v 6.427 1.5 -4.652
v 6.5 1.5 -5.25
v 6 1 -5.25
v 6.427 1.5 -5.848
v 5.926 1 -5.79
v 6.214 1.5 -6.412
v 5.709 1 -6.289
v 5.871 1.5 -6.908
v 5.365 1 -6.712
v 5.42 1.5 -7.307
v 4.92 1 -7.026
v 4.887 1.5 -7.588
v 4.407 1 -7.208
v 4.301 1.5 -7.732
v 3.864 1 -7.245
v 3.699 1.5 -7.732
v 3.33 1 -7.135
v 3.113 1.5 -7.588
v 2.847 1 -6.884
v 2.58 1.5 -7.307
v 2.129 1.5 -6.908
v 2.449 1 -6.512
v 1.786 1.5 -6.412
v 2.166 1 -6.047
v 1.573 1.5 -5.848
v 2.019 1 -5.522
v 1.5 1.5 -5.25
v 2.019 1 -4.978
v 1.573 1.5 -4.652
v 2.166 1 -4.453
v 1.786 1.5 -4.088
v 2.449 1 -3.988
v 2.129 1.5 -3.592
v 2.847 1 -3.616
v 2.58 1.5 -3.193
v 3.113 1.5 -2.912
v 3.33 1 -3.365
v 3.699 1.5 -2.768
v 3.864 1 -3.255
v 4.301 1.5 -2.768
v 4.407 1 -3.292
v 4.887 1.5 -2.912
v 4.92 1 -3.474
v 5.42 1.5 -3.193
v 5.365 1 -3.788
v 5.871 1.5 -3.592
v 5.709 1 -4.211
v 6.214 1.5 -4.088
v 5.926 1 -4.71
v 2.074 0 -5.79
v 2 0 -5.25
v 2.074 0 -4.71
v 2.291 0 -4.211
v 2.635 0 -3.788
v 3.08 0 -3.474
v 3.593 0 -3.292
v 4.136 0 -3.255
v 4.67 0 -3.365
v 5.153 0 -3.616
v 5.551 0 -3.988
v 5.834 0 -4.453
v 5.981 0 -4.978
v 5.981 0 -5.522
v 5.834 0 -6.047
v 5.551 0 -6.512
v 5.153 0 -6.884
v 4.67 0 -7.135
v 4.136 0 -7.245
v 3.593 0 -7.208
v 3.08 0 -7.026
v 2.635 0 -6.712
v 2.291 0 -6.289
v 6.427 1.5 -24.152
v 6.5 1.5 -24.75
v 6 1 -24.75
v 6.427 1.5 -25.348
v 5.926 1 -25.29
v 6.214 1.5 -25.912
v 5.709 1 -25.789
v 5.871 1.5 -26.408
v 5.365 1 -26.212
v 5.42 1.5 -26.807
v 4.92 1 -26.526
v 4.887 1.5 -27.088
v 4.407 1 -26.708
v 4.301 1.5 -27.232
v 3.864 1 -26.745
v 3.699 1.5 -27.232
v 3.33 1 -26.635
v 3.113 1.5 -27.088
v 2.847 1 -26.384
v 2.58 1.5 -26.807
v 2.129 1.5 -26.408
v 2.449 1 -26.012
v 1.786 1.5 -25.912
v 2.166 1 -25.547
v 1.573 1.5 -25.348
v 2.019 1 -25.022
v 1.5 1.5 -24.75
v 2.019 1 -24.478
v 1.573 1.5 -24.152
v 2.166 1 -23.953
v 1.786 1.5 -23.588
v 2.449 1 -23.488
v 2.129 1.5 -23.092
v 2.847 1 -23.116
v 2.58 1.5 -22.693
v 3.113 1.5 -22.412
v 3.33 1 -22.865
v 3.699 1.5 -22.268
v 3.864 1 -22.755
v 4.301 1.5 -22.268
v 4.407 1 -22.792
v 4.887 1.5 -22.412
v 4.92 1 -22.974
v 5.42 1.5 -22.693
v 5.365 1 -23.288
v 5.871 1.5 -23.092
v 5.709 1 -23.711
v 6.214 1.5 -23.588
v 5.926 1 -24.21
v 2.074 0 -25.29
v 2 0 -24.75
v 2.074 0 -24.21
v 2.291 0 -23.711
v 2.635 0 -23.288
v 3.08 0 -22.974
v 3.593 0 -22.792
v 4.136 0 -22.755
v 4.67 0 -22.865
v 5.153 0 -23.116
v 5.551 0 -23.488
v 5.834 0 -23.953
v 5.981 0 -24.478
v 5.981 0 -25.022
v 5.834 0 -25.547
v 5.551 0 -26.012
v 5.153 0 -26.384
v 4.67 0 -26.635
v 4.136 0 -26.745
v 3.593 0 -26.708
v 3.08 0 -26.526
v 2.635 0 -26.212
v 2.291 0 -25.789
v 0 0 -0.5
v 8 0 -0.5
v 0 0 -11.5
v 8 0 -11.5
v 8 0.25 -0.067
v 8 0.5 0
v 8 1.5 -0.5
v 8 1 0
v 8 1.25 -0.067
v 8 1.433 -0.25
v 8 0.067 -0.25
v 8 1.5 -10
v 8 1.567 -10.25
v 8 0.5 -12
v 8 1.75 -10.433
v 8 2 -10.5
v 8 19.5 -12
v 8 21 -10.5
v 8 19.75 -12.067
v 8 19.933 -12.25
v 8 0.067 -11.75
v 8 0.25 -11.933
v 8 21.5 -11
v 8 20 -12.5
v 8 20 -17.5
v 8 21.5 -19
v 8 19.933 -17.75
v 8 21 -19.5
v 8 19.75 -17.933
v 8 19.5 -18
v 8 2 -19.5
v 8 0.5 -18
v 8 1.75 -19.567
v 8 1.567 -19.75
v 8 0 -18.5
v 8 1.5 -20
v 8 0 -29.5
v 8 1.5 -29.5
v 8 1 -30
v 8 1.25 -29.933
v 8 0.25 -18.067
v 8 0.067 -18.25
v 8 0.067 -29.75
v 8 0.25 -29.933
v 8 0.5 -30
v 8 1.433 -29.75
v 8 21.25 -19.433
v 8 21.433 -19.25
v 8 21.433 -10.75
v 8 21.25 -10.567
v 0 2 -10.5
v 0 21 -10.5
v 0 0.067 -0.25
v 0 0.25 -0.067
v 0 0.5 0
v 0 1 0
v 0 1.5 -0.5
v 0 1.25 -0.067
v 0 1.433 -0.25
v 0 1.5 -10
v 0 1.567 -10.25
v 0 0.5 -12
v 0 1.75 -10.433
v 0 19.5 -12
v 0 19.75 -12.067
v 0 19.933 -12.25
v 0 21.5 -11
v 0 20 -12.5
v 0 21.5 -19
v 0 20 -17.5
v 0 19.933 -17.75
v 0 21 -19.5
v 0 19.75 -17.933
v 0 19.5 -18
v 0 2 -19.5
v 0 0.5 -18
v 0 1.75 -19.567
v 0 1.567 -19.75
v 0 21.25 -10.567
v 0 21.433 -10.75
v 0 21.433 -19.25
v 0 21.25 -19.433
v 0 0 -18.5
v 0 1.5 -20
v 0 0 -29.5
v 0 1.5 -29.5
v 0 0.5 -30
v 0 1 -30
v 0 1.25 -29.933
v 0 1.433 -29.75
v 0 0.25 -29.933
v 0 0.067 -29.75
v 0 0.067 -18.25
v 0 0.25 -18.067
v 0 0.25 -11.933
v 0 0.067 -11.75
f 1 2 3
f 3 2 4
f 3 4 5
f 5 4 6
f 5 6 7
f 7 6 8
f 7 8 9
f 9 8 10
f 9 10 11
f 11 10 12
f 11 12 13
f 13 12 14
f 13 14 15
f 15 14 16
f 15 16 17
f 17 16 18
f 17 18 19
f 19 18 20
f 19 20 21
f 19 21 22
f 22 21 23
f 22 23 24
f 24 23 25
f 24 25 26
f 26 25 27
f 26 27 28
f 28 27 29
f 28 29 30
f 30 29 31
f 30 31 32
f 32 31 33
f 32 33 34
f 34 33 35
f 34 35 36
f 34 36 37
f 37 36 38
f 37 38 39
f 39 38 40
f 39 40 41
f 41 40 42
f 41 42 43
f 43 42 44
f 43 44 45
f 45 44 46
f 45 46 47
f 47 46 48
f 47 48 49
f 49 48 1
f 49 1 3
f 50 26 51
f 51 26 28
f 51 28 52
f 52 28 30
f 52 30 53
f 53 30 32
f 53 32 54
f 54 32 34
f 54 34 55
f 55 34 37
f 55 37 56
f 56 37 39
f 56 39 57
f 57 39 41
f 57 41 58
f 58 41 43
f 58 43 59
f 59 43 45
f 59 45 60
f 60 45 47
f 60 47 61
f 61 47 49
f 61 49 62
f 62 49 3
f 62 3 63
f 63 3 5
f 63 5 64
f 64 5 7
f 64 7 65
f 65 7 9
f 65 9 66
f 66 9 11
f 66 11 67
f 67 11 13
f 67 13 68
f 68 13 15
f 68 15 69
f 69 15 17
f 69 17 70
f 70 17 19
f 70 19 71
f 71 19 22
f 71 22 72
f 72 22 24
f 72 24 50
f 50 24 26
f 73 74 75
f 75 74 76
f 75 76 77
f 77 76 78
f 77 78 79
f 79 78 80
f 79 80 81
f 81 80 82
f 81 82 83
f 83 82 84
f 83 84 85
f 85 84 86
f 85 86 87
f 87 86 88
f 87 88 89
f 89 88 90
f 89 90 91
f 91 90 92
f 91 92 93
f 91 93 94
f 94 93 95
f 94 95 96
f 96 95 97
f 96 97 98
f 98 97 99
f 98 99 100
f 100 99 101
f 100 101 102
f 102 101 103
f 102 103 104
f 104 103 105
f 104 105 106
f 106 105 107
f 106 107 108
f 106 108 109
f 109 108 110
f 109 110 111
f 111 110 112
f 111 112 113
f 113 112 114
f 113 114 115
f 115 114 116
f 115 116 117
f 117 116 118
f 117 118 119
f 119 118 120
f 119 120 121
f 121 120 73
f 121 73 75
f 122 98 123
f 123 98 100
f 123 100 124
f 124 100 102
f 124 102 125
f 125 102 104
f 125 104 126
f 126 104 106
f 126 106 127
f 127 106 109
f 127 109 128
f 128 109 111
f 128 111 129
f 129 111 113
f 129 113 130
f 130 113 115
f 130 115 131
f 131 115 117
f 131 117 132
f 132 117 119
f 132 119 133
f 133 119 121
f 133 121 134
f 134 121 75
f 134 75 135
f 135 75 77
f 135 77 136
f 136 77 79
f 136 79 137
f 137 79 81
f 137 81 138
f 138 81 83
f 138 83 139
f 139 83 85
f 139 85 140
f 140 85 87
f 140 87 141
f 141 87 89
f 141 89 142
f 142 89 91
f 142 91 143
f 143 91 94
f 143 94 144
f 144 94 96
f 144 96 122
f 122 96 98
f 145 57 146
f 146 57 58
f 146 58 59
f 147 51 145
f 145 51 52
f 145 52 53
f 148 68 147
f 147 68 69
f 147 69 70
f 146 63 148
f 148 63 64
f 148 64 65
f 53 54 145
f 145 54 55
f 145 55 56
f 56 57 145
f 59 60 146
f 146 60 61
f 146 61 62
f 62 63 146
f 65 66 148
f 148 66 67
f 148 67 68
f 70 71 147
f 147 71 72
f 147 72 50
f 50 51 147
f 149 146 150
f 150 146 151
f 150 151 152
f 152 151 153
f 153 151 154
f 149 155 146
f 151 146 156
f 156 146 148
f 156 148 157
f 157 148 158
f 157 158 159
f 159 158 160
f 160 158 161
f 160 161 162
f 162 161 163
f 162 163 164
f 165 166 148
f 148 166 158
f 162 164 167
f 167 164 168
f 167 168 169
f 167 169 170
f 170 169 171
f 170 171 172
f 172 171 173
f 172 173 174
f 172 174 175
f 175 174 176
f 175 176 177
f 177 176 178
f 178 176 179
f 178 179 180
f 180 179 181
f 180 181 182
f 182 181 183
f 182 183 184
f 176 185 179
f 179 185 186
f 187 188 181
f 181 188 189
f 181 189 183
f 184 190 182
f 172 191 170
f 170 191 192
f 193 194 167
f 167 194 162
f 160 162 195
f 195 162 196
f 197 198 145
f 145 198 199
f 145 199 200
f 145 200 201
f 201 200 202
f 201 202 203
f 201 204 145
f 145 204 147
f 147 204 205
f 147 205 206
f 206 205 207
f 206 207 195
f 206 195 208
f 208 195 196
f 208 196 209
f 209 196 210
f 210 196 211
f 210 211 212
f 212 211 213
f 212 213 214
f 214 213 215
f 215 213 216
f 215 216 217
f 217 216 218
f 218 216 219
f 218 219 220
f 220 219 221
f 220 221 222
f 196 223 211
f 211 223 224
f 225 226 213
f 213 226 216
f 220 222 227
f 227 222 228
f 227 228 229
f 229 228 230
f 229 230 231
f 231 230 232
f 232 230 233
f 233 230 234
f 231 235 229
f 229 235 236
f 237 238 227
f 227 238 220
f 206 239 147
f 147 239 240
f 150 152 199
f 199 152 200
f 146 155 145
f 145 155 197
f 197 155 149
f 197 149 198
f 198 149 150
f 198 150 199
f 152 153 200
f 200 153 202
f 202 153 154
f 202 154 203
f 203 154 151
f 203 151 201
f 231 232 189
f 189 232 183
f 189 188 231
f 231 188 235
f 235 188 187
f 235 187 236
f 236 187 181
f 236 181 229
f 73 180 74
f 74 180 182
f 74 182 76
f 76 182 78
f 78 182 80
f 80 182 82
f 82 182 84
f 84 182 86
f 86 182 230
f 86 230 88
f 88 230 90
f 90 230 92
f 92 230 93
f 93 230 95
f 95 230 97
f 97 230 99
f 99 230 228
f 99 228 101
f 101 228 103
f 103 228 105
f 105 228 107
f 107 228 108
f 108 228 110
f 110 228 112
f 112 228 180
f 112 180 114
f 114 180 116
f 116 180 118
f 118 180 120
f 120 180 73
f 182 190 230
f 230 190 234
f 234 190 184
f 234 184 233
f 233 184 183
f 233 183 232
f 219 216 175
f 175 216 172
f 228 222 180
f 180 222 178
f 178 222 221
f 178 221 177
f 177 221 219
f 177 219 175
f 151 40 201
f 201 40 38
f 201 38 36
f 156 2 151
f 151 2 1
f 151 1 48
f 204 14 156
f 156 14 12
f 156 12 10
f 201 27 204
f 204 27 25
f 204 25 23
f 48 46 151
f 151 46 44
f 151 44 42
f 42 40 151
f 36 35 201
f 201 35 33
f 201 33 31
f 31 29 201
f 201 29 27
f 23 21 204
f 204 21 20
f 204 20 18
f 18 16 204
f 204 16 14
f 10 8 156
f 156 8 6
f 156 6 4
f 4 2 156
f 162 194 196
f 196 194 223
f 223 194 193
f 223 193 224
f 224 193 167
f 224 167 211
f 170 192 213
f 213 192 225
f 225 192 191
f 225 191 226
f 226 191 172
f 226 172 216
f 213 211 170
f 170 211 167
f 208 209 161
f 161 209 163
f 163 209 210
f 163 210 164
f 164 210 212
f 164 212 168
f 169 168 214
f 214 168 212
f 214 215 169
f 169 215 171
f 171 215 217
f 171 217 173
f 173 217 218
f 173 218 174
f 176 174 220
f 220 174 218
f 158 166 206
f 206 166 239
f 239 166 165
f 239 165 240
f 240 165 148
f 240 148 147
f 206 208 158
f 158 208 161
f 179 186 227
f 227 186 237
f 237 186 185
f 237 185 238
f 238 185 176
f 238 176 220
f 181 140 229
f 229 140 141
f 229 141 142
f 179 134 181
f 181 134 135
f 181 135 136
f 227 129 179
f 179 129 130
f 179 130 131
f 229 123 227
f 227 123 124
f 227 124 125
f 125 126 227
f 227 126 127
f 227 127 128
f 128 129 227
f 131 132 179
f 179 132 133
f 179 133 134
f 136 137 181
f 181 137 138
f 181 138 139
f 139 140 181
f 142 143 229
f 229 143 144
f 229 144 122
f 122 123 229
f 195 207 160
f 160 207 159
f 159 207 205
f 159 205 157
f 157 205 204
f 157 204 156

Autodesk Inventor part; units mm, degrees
ref_plane "YZ Plane" through (0, 0, 0) normal (1, 0, 0) x (0, 1, 0)
ref_plane "XZ Plane" through (0, 0, 0) normal (0, 1, 0) x (-1, 0, 0)
ref_plane "XY Plane" through (0, 0, 0) normal (0, 0, 1) x (1, 0, 0)
sketch "Sketch1" plane through (0, 0, 0) normal (1, 0, 0) x (0, 1, 0)
  line L0 (0, 0) -> (0, -12)
  line L1 (0, -12) -> (20, -12)
  line L2 (20, -12) -> (20, -18)
  line L3 (20, -18) -> (0, -18)
  line L4 (0, -18) -> (0, -30)
  line L5 (1.5, 0) -> (1.5, -10.5)
  line L6 (1.5, -10.5) -> (21.5, -10.5)
  line L7 (21.5, -10.5) -> (21.5, -19.5)
  line L8 (21.5, -19.5) -> (1.5, -19.5)
  line L9 (1.5, -19.5) -> (1.5, -30)
  line L10 (1.5, 0) -> (0, 0)
  line L11 (1.5, -30) -> (0, -30)
  dimension "d0" = 12
  dimension "d1" = 12
  dimension "d2" = 6
  dimension "d3" = 20
  dimension "d4" = 1.5
extrude "Extrusion1" add sketch "Sketch1" along normal blind 8
sketch "Sketch2" plane through (0, 1.5, 0) normal (0, 1, 0) x (1, 0, 0)
  line L0 (0, 0) -> (8, 0) construction
  line L1 (0, 10.5) -> (0, 0) construction
  line L2 (0, 30) -> (0, 19.5) construction
  point P0 (4, 5.25)
  point P1 (4, 24.75)
  point P2 (0, 5.25)
  point P3 (0, 24.75)
  point P4 (4, 0)
  point P5 (4, 0)
hole "Hole1" at (4, 1.5, -5.25) at (4, 1.5, -24.75) direction (0, -1, 0) diameter 4 end through all countersink diameter 5 countersink angle 90
fillet "Fillet1" radius 0.5 12 edges at (4, 21.5, -10.5) (4, 21.5, -19.5) (4, 20, -12) (4, 20, -18) (4, 0, -12) (4, 0, -18) (4, 1.5, -10.5) (4, 1.5, -19.5) (4, 1.5, -30) (4, 0, -30) (4, 1.5, 0) (4, 0, 0)
properties part number "CLIP V1"
